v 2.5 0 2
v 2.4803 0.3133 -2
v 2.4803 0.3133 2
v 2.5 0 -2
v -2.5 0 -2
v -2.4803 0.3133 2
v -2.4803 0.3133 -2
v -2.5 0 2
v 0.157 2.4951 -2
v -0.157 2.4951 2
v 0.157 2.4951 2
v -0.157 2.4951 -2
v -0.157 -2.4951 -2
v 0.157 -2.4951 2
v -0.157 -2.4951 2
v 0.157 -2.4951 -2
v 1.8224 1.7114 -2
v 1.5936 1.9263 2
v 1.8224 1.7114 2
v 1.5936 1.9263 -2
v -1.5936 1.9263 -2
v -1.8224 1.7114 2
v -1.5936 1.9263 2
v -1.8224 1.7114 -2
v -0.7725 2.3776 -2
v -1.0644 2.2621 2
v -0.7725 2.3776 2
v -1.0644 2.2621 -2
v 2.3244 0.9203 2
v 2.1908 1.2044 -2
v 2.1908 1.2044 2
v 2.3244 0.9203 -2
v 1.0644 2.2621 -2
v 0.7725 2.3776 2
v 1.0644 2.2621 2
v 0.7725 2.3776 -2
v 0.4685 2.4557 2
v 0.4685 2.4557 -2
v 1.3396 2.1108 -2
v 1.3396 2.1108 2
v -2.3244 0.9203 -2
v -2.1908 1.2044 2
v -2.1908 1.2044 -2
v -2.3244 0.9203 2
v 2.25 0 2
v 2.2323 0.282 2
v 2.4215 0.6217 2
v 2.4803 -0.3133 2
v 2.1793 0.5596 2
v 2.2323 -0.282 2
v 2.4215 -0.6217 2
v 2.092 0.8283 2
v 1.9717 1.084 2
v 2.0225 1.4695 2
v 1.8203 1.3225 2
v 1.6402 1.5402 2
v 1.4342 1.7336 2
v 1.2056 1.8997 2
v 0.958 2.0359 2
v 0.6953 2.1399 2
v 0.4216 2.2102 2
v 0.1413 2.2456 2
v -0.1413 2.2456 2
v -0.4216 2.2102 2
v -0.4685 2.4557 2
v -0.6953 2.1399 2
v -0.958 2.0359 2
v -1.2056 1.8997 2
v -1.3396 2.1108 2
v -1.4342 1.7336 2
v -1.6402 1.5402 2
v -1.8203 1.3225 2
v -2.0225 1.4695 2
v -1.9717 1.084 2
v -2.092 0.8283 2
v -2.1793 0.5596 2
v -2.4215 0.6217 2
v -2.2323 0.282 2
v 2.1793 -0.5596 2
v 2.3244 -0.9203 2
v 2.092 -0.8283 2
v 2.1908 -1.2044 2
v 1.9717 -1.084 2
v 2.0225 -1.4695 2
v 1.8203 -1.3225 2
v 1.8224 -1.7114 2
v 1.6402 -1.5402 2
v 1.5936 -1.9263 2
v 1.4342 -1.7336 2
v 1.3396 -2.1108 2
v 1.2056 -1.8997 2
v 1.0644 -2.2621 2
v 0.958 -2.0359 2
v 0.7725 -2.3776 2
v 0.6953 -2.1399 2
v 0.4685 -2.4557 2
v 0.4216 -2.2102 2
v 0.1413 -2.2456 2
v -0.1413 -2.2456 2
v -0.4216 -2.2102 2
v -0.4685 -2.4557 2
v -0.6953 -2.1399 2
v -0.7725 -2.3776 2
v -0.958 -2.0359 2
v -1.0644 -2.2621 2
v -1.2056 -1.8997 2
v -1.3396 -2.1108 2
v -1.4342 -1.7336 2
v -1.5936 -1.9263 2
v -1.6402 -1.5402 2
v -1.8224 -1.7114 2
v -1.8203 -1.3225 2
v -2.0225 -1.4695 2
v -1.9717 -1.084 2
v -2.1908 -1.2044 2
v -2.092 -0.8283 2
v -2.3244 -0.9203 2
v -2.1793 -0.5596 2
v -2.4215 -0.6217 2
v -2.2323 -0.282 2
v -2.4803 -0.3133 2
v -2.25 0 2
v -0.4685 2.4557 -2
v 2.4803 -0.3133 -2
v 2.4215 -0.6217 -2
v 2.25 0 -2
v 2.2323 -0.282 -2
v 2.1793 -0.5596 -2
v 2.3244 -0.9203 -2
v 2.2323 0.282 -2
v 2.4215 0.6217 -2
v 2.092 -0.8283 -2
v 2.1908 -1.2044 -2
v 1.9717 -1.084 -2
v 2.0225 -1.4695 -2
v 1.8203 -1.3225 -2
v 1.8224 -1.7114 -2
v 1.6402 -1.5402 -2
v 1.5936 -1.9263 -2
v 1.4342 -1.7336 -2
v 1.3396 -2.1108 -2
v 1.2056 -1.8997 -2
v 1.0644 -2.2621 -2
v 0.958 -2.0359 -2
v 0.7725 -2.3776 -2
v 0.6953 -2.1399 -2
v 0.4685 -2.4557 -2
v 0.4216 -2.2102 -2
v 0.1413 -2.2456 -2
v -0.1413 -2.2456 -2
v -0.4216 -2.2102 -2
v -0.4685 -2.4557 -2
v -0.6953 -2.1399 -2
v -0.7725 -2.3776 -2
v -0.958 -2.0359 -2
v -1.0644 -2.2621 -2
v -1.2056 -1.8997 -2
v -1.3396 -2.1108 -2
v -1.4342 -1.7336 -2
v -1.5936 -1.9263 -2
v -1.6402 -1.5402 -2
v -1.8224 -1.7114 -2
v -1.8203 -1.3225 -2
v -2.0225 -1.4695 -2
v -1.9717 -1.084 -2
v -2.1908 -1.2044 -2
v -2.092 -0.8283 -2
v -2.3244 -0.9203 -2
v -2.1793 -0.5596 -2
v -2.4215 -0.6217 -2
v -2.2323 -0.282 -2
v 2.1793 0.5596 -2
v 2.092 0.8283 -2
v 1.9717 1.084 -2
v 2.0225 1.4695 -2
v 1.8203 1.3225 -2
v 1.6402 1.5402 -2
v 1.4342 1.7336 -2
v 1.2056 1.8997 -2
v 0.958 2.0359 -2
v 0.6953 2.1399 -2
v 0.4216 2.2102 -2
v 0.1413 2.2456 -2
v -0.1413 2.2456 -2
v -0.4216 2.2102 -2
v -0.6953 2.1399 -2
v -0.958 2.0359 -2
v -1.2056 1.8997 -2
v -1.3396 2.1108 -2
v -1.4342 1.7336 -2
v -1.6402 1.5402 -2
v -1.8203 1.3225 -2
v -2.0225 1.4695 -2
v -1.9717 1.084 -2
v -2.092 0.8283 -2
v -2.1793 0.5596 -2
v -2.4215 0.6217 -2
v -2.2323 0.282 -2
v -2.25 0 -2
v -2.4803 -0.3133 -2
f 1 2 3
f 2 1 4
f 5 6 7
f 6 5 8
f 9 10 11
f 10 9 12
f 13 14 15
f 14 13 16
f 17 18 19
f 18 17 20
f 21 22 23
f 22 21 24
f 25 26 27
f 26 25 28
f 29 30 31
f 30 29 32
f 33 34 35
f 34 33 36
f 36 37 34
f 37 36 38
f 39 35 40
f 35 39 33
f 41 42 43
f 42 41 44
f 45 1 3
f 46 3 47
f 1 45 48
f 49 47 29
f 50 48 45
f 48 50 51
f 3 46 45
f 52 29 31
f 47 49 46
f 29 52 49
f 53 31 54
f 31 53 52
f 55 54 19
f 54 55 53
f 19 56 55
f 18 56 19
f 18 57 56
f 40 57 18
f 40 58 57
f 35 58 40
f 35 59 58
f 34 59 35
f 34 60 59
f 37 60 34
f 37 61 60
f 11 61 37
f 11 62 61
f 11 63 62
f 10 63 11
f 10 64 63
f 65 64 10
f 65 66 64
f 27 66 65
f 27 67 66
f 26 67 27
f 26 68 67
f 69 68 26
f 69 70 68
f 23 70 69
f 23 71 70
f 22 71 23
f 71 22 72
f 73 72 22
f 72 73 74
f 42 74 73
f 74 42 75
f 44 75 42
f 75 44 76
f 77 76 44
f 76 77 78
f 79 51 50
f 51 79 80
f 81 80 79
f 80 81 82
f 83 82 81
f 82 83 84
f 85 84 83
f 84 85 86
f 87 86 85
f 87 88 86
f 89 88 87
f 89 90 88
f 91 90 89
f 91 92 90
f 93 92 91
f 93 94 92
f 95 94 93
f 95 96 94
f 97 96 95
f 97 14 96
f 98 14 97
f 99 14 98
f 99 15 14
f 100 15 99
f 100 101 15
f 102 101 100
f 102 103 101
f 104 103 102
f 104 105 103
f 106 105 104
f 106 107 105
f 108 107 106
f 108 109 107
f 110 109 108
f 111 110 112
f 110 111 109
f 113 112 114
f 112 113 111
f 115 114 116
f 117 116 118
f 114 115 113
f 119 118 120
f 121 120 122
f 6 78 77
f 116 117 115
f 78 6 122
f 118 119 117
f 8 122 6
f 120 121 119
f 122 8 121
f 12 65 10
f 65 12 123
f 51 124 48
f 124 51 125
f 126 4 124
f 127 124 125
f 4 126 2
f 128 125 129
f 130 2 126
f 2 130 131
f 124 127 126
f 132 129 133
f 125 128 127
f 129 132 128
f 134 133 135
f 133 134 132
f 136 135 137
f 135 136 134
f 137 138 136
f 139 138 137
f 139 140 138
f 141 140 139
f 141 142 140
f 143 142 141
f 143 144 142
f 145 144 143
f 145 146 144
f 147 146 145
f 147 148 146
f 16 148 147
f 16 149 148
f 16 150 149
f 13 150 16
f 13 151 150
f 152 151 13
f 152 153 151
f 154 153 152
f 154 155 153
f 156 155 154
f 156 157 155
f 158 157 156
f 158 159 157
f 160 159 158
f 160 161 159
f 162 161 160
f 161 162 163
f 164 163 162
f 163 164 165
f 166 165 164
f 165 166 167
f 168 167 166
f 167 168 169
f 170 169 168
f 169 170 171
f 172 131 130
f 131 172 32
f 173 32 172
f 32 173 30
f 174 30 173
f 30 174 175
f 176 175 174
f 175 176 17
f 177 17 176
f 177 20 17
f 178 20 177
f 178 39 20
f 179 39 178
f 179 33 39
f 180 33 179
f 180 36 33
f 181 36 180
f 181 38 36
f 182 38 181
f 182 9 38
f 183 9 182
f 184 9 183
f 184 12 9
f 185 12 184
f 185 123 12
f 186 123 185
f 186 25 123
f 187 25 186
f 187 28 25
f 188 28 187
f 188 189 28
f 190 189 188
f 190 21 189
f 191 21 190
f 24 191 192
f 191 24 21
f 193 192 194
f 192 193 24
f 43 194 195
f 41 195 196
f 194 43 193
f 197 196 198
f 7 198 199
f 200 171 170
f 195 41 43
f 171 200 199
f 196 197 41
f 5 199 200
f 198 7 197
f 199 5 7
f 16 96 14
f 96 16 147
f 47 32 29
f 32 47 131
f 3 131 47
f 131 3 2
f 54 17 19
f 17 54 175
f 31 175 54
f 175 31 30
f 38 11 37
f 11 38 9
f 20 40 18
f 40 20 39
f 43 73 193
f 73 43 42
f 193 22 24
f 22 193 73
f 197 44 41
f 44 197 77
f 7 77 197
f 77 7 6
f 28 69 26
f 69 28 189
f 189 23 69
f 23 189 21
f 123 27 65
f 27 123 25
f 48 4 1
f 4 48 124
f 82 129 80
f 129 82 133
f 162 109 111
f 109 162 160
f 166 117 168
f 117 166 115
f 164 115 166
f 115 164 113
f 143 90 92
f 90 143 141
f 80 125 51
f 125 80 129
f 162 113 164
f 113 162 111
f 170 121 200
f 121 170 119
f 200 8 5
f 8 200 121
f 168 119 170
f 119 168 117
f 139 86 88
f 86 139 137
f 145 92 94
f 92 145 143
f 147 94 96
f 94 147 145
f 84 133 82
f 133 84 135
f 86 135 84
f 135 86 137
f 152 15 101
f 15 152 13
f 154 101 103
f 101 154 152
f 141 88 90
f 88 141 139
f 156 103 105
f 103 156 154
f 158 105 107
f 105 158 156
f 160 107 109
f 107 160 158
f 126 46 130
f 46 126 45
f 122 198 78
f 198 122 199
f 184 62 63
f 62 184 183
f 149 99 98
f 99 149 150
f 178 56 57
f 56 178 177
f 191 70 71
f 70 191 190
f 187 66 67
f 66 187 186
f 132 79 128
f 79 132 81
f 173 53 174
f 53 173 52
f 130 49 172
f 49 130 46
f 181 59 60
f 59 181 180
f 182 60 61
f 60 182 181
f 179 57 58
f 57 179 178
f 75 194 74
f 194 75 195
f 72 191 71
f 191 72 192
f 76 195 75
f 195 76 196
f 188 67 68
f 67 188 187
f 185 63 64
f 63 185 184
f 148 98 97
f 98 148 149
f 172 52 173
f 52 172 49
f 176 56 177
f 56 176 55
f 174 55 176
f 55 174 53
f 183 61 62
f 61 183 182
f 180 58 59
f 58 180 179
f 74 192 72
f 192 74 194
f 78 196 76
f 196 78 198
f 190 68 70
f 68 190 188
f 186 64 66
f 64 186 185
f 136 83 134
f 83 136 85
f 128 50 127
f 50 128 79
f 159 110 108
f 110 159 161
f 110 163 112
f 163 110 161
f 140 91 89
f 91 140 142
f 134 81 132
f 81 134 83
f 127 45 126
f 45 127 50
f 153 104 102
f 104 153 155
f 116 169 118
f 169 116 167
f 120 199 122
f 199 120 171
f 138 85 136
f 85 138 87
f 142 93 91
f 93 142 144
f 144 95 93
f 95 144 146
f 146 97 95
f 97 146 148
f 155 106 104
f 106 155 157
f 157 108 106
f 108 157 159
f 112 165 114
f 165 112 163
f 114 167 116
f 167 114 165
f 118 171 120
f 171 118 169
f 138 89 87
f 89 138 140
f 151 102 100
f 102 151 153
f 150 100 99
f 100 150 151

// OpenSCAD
$fn = 50;


difference() {
	union() {
		translate(v = [0, 0, -2.0000000000]) {
			cylinder(h = 4, r = 2.5000000000);
		}
	}
	union() {
		translate(v = [0, 0, -100.0000000000]) {
			cylinder(h = 200, r = 2.2500000000);
		}
	}
}
